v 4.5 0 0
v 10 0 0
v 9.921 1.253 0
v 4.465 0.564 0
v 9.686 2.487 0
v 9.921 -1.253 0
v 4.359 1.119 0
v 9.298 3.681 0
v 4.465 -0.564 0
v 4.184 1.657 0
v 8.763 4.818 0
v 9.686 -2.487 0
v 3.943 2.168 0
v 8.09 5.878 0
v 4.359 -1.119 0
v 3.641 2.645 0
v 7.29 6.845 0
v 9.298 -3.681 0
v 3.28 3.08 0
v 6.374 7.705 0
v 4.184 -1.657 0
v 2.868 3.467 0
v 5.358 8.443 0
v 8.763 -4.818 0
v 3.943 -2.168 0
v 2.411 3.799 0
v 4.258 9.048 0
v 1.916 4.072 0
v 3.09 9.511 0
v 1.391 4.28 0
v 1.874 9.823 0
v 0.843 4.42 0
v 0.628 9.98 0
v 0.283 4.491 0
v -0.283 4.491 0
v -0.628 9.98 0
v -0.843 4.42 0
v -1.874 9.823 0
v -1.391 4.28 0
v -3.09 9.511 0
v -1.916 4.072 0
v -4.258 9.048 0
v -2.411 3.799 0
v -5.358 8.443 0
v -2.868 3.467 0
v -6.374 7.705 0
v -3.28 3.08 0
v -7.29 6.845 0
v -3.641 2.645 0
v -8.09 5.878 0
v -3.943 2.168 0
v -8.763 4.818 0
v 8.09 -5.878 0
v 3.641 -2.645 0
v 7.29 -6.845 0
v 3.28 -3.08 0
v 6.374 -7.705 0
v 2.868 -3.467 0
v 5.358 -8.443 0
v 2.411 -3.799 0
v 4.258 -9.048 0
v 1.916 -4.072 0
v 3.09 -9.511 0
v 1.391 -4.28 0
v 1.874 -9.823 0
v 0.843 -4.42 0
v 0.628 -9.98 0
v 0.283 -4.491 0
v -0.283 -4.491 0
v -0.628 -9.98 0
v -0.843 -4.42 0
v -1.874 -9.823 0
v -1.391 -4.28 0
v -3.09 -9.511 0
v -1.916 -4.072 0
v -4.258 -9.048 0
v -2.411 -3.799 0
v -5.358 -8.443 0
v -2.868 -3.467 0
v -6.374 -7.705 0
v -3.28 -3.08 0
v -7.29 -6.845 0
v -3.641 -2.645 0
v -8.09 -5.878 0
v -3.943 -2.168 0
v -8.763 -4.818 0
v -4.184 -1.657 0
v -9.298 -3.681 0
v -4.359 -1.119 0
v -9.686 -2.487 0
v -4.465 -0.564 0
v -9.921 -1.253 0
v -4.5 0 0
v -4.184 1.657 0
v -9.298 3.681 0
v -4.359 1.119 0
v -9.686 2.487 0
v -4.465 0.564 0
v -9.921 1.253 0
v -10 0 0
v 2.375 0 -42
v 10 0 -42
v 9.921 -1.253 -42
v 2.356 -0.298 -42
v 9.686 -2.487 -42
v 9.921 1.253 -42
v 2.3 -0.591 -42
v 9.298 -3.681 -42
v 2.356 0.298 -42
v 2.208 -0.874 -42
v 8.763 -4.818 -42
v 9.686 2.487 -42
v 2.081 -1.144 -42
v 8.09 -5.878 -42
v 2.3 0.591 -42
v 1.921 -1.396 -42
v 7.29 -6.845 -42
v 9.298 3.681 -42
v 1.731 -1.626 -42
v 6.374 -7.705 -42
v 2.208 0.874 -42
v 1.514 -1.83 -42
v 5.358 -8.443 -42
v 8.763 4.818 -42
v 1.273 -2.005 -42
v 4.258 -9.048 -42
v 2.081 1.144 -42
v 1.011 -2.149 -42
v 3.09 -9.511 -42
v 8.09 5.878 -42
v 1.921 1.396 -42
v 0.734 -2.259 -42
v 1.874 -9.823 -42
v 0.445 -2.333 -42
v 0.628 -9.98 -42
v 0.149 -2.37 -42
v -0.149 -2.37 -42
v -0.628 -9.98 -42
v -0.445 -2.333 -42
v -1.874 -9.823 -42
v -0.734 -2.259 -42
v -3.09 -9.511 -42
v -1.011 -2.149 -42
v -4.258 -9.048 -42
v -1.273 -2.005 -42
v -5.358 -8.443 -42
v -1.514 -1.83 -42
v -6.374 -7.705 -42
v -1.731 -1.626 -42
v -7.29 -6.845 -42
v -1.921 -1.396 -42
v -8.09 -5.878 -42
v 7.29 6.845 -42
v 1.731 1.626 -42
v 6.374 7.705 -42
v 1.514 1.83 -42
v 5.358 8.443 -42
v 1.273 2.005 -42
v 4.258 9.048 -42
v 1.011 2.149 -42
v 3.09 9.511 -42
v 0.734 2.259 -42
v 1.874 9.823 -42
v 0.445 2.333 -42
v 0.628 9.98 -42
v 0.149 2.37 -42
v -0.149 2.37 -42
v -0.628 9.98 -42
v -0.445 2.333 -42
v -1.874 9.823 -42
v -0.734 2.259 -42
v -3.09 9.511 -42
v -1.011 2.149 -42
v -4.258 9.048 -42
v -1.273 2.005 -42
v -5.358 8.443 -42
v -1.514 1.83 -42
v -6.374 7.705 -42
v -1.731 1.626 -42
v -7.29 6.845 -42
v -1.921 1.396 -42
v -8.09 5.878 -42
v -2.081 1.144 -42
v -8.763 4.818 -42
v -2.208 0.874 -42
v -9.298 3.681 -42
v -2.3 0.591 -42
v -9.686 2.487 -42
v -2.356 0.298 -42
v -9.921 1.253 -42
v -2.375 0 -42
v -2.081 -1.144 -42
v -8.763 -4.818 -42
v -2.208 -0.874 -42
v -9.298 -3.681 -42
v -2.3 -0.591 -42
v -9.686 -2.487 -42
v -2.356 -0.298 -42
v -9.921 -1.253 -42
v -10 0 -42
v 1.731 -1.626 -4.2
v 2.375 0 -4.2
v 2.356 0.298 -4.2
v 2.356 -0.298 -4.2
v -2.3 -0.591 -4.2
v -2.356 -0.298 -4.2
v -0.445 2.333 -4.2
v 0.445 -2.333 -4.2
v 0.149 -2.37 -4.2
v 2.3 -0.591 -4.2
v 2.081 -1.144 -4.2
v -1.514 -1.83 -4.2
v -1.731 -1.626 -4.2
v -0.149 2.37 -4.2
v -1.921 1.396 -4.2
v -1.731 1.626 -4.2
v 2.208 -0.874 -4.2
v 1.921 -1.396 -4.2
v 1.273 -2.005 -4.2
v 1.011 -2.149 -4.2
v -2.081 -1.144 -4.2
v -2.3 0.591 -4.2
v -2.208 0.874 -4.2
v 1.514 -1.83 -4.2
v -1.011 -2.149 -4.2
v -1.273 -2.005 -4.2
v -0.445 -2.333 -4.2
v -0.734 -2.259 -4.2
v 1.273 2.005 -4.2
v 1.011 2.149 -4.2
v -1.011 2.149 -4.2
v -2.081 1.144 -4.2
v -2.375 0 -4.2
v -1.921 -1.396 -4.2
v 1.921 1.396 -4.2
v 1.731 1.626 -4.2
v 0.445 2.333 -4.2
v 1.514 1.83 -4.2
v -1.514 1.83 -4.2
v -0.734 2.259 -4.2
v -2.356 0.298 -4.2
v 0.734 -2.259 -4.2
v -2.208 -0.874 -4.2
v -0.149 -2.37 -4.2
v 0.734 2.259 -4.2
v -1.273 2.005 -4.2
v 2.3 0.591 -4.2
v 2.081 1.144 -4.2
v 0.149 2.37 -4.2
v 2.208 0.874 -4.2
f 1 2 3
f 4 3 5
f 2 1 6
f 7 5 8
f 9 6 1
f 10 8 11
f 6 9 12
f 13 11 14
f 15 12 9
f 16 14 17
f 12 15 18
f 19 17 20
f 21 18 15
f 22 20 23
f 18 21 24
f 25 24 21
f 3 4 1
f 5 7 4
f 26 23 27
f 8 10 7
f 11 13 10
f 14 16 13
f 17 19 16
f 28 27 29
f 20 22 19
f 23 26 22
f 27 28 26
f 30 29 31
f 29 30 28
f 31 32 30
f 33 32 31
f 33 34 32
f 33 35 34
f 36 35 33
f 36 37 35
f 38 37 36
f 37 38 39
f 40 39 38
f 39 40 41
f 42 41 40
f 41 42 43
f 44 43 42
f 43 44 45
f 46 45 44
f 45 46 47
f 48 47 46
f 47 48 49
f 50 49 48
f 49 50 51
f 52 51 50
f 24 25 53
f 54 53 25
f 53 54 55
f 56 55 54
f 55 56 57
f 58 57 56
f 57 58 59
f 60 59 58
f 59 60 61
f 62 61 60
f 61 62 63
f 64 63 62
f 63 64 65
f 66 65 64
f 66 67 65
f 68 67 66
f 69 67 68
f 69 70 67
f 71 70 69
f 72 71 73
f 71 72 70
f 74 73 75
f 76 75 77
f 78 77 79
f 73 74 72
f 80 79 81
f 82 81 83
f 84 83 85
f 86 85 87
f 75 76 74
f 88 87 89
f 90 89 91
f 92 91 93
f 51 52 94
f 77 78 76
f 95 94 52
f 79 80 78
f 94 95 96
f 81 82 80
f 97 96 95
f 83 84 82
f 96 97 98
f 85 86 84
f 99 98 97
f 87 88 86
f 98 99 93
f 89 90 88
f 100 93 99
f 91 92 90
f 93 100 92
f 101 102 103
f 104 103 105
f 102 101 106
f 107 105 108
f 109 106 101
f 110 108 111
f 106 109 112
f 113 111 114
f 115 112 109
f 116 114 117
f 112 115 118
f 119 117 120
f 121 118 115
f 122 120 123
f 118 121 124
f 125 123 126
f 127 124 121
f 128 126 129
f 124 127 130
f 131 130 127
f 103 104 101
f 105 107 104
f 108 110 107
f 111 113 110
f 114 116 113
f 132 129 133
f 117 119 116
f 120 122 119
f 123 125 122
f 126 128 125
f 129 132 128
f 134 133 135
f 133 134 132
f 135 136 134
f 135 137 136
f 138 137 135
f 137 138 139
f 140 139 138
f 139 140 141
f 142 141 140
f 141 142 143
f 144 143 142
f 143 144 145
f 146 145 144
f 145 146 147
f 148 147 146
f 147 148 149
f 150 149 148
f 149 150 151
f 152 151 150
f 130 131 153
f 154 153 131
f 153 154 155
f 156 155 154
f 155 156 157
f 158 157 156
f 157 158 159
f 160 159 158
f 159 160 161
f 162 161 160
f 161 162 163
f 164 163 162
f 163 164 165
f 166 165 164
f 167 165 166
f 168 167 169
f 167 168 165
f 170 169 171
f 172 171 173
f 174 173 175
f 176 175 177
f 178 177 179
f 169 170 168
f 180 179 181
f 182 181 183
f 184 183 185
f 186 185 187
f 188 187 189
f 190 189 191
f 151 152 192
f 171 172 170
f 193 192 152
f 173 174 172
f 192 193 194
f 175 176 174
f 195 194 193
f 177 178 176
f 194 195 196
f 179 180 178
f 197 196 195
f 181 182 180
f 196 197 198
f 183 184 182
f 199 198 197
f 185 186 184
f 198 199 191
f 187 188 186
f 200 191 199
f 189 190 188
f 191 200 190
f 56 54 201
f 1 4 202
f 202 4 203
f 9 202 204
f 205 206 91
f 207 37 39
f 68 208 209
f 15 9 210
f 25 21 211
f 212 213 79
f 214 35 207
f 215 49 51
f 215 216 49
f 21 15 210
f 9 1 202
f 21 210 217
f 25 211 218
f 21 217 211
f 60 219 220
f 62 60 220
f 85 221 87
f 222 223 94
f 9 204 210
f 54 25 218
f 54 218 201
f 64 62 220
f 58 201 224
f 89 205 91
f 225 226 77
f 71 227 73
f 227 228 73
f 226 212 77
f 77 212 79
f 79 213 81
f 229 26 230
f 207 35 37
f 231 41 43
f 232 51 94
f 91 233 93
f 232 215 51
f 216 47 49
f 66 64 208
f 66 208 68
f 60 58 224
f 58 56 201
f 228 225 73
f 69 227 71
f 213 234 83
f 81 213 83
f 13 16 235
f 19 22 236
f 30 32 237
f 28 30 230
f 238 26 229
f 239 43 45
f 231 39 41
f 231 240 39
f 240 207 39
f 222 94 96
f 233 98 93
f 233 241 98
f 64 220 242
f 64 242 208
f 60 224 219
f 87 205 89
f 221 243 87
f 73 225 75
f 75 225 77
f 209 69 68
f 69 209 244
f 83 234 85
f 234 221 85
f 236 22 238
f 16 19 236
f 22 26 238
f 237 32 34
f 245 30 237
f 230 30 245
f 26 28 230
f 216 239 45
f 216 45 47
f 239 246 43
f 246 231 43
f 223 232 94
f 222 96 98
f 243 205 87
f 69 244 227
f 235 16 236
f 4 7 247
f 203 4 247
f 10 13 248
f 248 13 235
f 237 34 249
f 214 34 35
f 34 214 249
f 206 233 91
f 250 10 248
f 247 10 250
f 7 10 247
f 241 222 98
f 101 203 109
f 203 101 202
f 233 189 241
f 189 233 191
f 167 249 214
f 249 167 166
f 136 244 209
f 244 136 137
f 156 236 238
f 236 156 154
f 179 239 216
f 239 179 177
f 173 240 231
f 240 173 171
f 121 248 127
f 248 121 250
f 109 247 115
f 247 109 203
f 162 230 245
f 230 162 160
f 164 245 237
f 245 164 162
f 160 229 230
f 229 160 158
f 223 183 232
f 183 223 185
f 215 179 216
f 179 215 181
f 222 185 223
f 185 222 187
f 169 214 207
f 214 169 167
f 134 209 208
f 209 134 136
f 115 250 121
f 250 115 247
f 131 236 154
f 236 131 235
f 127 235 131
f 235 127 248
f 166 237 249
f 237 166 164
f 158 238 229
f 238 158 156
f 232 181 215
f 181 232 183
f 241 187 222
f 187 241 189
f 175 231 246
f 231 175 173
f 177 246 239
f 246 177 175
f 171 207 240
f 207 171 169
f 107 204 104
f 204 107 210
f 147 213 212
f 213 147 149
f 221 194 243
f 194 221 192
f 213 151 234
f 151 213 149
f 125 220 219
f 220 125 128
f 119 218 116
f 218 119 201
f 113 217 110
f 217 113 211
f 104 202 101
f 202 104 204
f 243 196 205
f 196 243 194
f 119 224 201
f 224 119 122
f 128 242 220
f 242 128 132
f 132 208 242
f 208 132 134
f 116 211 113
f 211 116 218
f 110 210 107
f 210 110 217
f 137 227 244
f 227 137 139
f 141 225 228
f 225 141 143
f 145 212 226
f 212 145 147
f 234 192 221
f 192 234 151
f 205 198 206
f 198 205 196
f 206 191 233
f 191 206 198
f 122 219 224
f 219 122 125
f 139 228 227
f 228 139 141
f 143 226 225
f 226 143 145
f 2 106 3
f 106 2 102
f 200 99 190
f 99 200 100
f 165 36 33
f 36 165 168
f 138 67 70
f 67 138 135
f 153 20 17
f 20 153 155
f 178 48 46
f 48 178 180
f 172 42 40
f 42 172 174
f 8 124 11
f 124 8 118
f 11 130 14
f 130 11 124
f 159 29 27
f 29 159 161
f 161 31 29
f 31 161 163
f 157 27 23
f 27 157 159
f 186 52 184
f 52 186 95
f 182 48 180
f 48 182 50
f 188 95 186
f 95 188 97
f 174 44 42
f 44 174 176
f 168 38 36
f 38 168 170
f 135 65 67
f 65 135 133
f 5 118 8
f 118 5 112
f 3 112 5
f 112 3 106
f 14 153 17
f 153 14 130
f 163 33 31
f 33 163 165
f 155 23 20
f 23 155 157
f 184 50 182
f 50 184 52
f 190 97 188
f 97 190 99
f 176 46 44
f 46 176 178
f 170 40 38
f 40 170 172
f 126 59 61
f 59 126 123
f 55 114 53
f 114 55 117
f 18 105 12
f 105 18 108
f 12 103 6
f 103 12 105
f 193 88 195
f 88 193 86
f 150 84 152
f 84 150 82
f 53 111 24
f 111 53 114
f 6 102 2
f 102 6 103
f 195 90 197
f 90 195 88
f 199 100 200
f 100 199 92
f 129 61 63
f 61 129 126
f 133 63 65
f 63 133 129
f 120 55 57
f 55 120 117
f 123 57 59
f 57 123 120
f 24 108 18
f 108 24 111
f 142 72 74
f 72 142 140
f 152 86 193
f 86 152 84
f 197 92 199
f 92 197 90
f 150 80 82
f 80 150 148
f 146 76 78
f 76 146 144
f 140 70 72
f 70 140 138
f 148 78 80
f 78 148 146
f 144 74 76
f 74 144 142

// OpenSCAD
$fn = 50;


difference() {
	union() {
		translate(v = [0, 0, -42.0000000000]) {
			cylinder(h = 42, r = 10.0000000000);
		}
		cylinder(h = 0, r = 20.0000000000);
	}
	union() {
		translate(v = [0, 0, 0]) {
			rotate(a = [0, 0, 0]) {
				difference() {
					union() {
						#translate(v = [0, 0, -42.0000000000]) {
							cylinder(h = 42, r = 2.2500000000);
						}
						#translate(v = [0, 0, -4.2000000000]) {
							cylinder(h = 4.2000000000, r = 10.0000000000, r1 = 2.3750000000, r2 = 4.5000000000);
						}
						#translate(v = [0, 0, -42.0000000000]) {
							cylinder(h = 42, r = 2.3750000000);
						}
						#translate(v = [0, 0, -42.0000000000]) {
							cylinder(h = 42, r = 2.2500000000);
						}
					}
					union();
				}
			}
		}
	}
}
